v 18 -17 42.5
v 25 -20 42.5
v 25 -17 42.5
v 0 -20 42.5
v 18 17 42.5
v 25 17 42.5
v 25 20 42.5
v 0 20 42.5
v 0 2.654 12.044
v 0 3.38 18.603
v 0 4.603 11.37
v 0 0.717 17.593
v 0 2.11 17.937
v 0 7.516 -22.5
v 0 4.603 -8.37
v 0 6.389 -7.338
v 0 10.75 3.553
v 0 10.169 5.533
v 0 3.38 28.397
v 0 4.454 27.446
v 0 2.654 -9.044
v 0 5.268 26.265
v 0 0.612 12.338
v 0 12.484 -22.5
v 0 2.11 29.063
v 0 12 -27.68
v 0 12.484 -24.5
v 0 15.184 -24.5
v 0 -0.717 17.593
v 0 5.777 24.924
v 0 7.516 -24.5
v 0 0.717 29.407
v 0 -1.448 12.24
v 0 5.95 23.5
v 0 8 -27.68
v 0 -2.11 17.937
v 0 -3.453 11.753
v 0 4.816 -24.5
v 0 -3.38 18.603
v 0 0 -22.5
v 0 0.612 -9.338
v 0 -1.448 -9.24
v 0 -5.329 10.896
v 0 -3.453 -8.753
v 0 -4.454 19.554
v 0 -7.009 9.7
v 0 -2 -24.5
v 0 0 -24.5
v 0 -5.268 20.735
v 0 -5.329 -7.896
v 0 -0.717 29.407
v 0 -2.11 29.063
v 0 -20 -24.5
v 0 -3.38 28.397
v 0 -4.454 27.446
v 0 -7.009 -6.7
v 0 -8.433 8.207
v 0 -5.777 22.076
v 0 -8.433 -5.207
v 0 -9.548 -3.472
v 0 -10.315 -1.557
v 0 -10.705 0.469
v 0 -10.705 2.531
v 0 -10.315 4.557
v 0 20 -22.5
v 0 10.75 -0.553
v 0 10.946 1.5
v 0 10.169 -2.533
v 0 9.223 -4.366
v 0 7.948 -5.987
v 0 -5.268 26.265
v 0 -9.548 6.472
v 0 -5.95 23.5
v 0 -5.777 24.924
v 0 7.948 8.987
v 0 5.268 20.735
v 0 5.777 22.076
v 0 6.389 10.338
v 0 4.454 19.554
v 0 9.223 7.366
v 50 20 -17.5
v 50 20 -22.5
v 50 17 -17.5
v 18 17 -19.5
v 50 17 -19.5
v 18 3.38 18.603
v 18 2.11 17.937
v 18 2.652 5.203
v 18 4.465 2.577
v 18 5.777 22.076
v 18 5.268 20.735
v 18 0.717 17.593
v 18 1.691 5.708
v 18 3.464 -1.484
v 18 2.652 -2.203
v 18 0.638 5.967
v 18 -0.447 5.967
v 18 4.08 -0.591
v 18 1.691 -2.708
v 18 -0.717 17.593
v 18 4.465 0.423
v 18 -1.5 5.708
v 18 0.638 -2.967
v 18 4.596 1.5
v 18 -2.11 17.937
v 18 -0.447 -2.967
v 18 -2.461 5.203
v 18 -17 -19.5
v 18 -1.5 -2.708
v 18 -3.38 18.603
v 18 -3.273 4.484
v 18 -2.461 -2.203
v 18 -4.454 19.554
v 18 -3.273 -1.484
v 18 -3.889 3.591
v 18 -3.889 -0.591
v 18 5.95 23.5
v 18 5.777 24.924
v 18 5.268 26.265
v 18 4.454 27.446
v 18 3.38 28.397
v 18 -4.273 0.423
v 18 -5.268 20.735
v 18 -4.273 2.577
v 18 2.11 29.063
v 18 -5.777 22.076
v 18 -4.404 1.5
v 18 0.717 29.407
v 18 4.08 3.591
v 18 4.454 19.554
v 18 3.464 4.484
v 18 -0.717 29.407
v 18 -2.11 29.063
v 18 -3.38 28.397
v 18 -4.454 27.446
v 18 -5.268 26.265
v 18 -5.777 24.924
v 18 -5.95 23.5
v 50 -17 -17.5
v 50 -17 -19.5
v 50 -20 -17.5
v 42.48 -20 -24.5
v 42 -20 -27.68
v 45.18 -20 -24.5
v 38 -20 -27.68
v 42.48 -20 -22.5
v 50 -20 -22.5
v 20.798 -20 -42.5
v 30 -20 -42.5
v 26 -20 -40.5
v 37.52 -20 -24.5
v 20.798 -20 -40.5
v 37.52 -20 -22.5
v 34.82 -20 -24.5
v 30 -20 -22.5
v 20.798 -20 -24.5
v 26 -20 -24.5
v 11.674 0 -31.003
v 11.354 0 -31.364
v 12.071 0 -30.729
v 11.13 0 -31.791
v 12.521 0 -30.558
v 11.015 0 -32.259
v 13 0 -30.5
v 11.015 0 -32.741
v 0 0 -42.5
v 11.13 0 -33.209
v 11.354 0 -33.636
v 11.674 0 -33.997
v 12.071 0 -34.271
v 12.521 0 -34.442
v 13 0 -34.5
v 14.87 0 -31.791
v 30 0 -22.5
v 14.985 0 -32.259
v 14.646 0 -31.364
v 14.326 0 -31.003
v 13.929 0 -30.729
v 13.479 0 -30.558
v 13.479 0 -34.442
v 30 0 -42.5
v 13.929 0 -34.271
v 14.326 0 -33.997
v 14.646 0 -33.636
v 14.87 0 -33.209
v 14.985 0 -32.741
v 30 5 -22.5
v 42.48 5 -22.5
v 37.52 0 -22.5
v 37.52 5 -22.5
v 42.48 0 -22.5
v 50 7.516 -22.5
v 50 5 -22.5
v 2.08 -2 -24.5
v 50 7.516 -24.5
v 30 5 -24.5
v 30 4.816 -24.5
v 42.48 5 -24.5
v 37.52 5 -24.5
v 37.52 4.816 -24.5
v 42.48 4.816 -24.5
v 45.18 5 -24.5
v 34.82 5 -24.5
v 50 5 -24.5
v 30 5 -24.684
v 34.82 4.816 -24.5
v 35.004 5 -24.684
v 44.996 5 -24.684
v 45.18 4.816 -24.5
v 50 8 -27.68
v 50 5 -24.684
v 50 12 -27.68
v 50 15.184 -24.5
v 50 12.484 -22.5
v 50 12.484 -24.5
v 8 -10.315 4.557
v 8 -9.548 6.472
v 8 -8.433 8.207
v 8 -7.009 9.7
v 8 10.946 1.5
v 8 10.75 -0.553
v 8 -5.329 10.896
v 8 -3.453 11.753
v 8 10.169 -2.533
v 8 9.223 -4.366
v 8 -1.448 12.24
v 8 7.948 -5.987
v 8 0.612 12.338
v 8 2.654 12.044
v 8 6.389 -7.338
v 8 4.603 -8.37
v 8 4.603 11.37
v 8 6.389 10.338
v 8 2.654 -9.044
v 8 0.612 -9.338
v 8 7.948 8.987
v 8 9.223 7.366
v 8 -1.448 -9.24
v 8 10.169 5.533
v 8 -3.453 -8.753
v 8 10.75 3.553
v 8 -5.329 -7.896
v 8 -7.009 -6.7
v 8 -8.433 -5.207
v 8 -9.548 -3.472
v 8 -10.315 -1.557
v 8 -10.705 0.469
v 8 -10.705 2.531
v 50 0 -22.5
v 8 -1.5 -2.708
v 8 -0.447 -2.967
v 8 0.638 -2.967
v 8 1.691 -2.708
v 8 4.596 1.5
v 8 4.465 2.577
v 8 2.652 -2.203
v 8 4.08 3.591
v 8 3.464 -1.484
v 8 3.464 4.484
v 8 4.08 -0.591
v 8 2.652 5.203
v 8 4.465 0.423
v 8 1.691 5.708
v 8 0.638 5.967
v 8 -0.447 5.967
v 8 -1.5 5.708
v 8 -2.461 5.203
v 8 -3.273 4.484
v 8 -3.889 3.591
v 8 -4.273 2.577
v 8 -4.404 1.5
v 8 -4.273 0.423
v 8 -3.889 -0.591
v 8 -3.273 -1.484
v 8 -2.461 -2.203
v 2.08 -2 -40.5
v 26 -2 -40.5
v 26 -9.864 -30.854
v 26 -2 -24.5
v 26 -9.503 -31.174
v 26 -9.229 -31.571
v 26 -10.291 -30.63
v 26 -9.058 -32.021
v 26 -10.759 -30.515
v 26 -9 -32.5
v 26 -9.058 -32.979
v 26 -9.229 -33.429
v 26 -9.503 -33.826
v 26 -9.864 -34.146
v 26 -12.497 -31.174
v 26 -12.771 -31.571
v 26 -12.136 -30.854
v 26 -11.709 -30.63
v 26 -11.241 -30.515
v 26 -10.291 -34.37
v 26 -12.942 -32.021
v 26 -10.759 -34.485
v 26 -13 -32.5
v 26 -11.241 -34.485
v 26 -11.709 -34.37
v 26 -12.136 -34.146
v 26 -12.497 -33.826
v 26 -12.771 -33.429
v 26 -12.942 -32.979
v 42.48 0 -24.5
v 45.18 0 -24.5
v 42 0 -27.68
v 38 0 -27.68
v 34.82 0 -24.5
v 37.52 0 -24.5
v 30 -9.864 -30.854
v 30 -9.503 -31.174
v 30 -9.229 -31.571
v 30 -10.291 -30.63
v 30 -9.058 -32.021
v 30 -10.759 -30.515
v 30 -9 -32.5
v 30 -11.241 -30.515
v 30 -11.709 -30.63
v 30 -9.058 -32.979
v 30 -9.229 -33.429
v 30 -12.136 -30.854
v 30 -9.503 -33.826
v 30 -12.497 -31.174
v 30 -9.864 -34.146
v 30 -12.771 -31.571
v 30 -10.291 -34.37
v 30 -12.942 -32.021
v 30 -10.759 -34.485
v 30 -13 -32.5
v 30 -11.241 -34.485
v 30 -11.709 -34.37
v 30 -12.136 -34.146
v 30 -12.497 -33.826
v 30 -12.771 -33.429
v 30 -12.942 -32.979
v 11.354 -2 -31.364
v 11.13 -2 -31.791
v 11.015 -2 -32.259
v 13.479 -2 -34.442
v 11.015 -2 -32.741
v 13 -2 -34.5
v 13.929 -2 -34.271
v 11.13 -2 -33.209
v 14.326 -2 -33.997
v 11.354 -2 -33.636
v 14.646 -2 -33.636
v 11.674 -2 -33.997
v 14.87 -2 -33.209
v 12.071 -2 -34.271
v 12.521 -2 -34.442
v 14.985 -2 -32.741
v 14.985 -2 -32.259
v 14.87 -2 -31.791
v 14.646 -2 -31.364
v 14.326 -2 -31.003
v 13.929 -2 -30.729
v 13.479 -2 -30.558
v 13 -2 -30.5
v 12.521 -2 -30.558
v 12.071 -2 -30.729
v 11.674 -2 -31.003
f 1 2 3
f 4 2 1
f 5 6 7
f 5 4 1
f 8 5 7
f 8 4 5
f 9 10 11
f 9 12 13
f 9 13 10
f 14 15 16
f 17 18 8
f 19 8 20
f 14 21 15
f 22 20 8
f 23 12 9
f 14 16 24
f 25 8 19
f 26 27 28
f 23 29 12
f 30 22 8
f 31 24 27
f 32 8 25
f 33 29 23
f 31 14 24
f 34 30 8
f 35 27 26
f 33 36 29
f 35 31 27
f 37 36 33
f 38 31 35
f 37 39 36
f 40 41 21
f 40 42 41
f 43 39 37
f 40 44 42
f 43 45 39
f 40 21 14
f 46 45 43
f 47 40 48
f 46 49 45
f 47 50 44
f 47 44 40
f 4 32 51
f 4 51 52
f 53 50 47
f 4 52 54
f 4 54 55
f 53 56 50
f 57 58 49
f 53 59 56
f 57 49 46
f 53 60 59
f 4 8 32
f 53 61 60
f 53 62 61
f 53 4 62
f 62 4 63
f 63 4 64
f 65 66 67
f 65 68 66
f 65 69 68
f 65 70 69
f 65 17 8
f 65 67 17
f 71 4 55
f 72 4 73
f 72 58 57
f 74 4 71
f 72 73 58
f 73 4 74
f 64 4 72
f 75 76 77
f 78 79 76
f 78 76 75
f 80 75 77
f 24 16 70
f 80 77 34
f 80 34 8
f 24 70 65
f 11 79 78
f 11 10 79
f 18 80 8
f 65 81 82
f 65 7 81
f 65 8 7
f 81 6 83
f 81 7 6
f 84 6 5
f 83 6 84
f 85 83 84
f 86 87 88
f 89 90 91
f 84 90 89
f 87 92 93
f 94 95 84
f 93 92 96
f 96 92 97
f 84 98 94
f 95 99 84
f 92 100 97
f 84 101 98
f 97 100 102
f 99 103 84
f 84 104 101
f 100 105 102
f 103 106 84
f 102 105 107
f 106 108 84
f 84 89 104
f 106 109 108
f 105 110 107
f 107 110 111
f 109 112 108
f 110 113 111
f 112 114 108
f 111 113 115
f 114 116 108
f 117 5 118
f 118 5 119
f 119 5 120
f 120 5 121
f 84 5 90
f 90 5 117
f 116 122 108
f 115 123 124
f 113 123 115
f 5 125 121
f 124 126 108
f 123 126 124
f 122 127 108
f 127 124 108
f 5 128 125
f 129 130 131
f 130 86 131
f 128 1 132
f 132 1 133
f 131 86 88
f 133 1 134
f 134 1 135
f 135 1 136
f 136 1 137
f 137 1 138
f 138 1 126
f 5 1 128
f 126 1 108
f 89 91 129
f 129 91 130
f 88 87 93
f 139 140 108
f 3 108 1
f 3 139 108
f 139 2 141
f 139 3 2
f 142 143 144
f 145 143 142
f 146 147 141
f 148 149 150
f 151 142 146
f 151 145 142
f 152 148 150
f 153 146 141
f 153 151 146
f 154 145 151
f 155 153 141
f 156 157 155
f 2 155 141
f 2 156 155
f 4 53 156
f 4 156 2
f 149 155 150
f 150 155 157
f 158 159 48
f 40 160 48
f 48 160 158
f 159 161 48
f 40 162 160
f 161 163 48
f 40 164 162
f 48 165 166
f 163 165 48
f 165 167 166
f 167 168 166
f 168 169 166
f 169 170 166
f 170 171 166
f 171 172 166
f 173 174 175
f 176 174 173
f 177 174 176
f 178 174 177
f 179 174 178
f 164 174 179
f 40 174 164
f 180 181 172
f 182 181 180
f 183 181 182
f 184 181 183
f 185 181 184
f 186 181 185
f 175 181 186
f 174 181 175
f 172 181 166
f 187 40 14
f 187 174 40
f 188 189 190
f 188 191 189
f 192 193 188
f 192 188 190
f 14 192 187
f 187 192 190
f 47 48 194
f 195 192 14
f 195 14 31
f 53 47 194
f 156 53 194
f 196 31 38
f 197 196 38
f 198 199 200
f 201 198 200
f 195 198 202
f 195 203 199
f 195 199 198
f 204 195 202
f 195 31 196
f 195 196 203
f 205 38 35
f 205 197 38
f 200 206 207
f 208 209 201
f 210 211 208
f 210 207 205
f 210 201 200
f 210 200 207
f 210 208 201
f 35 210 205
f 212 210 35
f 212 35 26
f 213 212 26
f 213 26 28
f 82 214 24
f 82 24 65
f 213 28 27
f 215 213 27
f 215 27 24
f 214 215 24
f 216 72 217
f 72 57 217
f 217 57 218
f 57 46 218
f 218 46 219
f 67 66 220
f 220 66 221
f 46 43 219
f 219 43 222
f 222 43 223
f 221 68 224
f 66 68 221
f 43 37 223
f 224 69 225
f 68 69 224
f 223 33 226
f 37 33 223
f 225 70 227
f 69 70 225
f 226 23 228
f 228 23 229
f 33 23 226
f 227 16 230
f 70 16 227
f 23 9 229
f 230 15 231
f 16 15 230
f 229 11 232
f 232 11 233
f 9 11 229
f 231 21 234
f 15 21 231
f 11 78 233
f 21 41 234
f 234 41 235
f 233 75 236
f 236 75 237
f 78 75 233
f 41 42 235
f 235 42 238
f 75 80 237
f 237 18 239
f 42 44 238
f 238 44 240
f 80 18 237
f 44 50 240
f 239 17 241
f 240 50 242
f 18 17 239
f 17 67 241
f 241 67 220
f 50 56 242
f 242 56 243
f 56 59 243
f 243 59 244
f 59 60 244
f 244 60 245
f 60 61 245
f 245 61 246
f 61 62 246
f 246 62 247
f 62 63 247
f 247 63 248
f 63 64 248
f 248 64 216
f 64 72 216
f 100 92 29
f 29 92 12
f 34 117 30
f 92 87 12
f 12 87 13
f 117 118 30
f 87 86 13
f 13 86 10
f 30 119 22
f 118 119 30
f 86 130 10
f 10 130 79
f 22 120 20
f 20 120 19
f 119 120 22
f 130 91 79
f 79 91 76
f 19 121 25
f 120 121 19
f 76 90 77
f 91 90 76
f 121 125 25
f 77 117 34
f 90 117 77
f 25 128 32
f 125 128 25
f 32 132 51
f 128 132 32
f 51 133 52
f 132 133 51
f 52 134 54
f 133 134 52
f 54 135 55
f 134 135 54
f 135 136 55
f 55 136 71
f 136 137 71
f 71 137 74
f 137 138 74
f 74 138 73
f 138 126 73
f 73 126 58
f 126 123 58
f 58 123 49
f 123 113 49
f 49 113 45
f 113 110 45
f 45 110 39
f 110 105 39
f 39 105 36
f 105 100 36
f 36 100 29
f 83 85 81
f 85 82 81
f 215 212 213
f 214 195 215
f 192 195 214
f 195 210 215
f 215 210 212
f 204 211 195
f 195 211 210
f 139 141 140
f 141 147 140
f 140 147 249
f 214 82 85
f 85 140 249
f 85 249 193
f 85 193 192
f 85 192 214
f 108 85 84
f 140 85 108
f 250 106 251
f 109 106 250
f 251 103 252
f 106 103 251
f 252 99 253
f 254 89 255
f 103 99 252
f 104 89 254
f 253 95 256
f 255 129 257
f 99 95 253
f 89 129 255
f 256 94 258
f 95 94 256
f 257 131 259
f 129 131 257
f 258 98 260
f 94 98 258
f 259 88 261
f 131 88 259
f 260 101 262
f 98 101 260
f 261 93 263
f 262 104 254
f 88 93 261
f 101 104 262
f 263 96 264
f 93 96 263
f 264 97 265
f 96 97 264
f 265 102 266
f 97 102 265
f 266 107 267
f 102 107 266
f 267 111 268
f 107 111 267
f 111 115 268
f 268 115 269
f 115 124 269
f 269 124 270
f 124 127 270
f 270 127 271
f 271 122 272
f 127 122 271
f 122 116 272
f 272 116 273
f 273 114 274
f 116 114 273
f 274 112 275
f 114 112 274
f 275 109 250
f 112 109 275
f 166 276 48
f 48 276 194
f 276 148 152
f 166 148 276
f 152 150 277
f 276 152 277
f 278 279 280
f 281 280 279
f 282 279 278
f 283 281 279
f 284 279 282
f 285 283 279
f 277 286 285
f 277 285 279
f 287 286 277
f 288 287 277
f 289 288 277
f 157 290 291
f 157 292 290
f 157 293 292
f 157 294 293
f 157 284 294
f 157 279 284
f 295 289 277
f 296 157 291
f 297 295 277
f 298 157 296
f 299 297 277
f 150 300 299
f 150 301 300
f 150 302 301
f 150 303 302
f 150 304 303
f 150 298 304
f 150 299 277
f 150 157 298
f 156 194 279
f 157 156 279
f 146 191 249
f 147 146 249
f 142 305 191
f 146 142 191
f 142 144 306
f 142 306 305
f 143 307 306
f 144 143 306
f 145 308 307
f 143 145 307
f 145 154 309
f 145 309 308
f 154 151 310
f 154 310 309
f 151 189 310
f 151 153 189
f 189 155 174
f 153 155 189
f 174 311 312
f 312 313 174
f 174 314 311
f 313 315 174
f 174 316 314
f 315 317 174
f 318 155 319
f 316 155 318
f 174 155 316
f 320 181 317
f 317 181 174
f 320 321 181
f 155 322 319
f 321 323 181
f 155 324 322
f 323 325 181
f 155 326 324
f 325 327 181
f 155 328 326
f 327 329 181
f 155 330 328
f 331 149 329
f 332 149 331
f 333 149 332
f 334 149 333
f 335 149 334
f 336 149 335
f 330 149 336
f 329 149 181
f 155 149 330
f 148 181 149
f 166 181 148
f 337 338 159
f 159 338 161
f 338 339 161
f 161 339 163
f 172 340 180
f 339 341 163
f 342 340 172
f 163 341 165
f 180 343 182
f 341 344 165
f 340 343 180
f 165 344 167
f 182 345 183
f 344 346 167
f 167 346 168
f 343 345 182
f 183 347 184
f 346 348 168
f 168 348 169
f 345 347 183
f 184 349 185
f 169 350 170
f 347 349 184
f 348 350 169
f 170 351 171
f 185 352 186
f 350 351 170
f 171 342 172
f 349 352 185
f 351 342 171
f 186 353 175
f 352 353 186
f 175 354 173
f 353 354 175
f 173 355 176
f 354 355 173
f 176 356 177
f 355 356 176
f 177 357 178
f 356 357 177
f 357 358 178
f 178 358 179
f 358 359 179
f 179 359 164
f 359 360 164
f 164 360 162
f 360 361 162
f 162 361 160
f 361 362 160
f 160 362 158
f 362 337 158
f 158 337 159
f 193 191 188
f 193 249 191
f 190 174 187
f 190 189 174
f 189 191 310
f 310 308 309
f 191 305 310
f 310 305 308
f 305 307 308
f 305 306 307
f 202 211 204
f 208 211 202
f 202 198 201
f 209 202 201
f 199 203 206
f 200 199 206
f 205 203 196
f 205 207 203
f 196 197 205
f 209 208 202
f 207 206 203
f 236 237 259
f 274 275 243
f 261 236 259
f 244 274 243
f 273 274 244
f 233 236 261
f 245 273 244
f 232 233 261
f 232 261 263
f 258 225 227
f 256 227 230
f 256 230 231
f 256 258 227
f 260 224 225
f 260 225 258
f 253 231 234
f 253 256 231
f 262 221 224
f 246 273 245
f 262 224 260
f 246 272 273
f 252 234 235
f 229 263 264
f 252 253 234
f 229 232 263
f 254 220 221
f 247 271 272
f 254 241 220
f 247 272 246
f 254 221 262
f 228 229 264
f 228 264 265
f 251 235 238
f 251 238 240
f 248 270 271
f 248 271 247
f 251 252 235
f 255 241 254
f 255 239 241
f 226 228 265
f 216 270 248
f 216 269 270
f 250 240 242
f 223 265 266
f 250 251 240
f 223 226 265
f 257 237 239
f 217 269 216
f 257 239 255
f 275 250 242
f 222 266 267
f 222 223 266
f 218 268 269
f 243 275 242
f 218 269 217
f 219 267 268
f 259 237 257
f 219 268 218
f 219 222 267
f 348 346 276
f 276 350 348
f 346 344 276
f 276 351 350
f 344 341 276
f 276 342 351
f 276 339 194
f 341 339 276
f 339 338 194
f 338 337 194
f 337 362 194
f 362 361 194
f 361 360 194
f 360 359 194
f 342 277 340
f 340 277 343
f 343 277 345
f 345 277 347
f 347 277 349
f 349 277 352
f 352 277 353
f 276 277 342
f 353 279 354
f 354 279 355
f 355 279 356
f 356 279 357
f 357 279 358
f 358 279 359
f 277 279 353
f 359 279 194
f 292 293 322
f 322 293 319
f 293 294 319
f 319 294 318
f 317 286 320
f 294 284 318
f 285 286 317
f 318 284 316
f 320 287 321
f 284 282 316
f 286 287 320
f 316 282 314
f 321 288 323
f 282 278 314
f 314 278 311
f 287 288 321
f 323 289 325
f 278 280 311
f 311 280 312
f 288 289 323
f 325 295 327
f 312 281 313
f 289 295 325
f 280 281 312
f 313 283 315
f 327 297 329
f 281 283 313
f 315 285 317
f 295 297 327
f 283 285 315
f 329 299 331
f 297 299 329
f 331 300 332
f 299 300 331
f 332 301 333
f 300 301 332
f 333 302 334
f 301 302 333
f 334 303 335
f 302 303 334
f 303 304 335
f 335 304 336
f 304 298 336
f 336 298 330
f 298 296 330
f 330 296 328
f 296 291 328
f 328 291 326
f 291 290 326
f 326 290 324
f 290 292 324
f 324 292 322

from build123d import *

# Parameters (mm, degrees)
SKETCH_W        = 40
SKETCH_H        = 85
PAD_DEPTH       = 50
POCKET_DEPTH    = 50
POCKET001_DEPTH = 25
SKETCH004_W     = 16
SKETCH004_H     = 26
POCKET002_DEPTH = 18
SKETCH005_R     = 2
POCKET003_DEPTH = 4
POCKET005_DEPTH = 18
SKETCH008_W     = 34
SKETCH008_H     = 62
POCKET006_DEPTH = 32
SKETCH009_R     = 5.95
SKETCH009_R_2   = 4.5
POCKET007_DEPTH = 18.001
SKETCH010_R     = 10.85
POCKET008_DEPTH = 8
POCKET009_DEPTH = 40.001
SKETCH012_R     = 2
POCKET010_DEPTH = 5


with BuildPart() as part:
    # Sketch → Pad (new body)
    with BuildSketch(Plane.YZ):
        Rectangle(SKETCH_W, SKETCH_H)
    extrude(amount=PAD_DEPTH)

    # Sketch001 (on Face6 of Pad) → Pocket (cut)
    with BuildSketch(Plane.YZ.offset(50)):
        Polygon((0, -22.5), (0, -42.5), (20, -42.5), (20, -22.5), (12.48396, -22.5), (12.48396, -24.5), (15.18396, -24.5), (12, -27.68), (8, -27.68), (4.81604, -24.5), (7.51604, -24.5), (7.51604, -22.5), align=None)
    extrude(amount=-POCKET_DEPTH, mode=Mode.SUBTRACT)

    # Sketch003 (on Face2 of Pocket) → Pocket001 (cut)
    with BuildSketch(Plane(origin=(0, -20, 0), x_dir=(0, 0, -1), z_dir=(0, -1, 0))):
        Polygon((42.5, 50), (22.5, 50), (22.5, 42.48), (24.5, 42.48), (24.5, 45.18), (27.68, 42), (27.68, 38), (24.5, 34.82), (24.5, 37.52), (22.5, 37.52), (22.5, 30), (42.5, 30), align=None)
    extrude(amount=-POCKET001_DEPTH, mode=Mode.SUBTRACT)

    # Sketch004 (on Face2 of Pocket001) → Pocket002 (cut)
    with BuildSketch(Plane(origin=(0, -20, 0), x_dir=(0, 0, -1), z_dir=(0, -1, 0))):
        with Locations((32.5, 13)):
            Rectangle(SKETCH004_W, SKETCH004_H)
    extrude(amount=-POCKET002_DEPTH, mode=Mode.SUBTRACT)

    # Sketch005 (on Face30 of Pocket002) → Pocket003 (cut)
    with BuildSketch(Plane(origin=(0, -2, 0), x_dir=(0, 0, -1), z_dir=(0, -1, 0))):
        with Locations((32.5, 13)):
            Circle(SKETCH005_R)
    extrude(amount=-POCKET003_DEPTH, mode=Mode.SUBTRACT)

    # Sketch007 → Pocket005 (cut)
    with BuildSketch(Plane.YX.offset(42.5)):
        Polygon((-25.002718, 26), (-25, 0), (0, 0), align=None)
    extrude(amount=-POCKET005_DEPTH, mode=Mode.SUBTRACT)

    # Sketch008 (on Face5 of Pocket005) → Pocket006 (cut)
    with BuildSketch(Plane.YZ.offset(50)):
        with Locations((0, 11.5)):
            Rectangle(SKETCH008_W, SKETCH008_H)
    extrude(amount=-POCKET006_DEPTH, mode=Mode.SUBTRACT)

    # Sketch009 (on Face6 of Pocket006) → Pocket007 (cut, through all)
    with BuildSketch(Plane.YZ.offset(18)):
        with Locations((0, 23.5)):
            Circle(SKETCH009_R)
        with Locations((0.095747, 1.5)):
            Circle(SKETCH009_R_2)
    extrude(amount=-POCKET007_DEPTH, mode=Mode.SUBTRACT)

    # Sketch010 (on Face2 of Pocket007) → Pocket008 (cut)
    with BuildSketch(Plane(origin=(0, 0, 0), x_dir=(0, 1, 0), z_dir=(-1, 0, 0))):
        with Locations((0.095747, -1.5)):
            Circle(SKETCH010_R)
    extrude(amount=-POCKET008_DEPTH, mode=Mode.SUBTRACT)

    # Sketch011 (on Face3 of Pocket008) → Pocket009 (cut, through all)
    with BuildSketch(Plane.ZX.offset(20)):
        Polygon((-17.5, 50), (42.5, 25), (42.5, 50), align=None)
    extrude(amount=-POCKET009_DEPTH, mode=Mode.SUBTRACT)

    # Sketch012 (on Face29 of Pocket009) → Pocket010 (cut)
    with BuildSketch(Plane(origin=(26, 0, 0), x_dir=(0, 1, 0), z_dir=(-1, 0, 0))):
        with Locations((-11, 32.5)):
            Circle(SKETCH012_R)
    extrude(amount=-POCKET010_DEPTH, mode=Mode.SUBTRACT)


solid = part.part
